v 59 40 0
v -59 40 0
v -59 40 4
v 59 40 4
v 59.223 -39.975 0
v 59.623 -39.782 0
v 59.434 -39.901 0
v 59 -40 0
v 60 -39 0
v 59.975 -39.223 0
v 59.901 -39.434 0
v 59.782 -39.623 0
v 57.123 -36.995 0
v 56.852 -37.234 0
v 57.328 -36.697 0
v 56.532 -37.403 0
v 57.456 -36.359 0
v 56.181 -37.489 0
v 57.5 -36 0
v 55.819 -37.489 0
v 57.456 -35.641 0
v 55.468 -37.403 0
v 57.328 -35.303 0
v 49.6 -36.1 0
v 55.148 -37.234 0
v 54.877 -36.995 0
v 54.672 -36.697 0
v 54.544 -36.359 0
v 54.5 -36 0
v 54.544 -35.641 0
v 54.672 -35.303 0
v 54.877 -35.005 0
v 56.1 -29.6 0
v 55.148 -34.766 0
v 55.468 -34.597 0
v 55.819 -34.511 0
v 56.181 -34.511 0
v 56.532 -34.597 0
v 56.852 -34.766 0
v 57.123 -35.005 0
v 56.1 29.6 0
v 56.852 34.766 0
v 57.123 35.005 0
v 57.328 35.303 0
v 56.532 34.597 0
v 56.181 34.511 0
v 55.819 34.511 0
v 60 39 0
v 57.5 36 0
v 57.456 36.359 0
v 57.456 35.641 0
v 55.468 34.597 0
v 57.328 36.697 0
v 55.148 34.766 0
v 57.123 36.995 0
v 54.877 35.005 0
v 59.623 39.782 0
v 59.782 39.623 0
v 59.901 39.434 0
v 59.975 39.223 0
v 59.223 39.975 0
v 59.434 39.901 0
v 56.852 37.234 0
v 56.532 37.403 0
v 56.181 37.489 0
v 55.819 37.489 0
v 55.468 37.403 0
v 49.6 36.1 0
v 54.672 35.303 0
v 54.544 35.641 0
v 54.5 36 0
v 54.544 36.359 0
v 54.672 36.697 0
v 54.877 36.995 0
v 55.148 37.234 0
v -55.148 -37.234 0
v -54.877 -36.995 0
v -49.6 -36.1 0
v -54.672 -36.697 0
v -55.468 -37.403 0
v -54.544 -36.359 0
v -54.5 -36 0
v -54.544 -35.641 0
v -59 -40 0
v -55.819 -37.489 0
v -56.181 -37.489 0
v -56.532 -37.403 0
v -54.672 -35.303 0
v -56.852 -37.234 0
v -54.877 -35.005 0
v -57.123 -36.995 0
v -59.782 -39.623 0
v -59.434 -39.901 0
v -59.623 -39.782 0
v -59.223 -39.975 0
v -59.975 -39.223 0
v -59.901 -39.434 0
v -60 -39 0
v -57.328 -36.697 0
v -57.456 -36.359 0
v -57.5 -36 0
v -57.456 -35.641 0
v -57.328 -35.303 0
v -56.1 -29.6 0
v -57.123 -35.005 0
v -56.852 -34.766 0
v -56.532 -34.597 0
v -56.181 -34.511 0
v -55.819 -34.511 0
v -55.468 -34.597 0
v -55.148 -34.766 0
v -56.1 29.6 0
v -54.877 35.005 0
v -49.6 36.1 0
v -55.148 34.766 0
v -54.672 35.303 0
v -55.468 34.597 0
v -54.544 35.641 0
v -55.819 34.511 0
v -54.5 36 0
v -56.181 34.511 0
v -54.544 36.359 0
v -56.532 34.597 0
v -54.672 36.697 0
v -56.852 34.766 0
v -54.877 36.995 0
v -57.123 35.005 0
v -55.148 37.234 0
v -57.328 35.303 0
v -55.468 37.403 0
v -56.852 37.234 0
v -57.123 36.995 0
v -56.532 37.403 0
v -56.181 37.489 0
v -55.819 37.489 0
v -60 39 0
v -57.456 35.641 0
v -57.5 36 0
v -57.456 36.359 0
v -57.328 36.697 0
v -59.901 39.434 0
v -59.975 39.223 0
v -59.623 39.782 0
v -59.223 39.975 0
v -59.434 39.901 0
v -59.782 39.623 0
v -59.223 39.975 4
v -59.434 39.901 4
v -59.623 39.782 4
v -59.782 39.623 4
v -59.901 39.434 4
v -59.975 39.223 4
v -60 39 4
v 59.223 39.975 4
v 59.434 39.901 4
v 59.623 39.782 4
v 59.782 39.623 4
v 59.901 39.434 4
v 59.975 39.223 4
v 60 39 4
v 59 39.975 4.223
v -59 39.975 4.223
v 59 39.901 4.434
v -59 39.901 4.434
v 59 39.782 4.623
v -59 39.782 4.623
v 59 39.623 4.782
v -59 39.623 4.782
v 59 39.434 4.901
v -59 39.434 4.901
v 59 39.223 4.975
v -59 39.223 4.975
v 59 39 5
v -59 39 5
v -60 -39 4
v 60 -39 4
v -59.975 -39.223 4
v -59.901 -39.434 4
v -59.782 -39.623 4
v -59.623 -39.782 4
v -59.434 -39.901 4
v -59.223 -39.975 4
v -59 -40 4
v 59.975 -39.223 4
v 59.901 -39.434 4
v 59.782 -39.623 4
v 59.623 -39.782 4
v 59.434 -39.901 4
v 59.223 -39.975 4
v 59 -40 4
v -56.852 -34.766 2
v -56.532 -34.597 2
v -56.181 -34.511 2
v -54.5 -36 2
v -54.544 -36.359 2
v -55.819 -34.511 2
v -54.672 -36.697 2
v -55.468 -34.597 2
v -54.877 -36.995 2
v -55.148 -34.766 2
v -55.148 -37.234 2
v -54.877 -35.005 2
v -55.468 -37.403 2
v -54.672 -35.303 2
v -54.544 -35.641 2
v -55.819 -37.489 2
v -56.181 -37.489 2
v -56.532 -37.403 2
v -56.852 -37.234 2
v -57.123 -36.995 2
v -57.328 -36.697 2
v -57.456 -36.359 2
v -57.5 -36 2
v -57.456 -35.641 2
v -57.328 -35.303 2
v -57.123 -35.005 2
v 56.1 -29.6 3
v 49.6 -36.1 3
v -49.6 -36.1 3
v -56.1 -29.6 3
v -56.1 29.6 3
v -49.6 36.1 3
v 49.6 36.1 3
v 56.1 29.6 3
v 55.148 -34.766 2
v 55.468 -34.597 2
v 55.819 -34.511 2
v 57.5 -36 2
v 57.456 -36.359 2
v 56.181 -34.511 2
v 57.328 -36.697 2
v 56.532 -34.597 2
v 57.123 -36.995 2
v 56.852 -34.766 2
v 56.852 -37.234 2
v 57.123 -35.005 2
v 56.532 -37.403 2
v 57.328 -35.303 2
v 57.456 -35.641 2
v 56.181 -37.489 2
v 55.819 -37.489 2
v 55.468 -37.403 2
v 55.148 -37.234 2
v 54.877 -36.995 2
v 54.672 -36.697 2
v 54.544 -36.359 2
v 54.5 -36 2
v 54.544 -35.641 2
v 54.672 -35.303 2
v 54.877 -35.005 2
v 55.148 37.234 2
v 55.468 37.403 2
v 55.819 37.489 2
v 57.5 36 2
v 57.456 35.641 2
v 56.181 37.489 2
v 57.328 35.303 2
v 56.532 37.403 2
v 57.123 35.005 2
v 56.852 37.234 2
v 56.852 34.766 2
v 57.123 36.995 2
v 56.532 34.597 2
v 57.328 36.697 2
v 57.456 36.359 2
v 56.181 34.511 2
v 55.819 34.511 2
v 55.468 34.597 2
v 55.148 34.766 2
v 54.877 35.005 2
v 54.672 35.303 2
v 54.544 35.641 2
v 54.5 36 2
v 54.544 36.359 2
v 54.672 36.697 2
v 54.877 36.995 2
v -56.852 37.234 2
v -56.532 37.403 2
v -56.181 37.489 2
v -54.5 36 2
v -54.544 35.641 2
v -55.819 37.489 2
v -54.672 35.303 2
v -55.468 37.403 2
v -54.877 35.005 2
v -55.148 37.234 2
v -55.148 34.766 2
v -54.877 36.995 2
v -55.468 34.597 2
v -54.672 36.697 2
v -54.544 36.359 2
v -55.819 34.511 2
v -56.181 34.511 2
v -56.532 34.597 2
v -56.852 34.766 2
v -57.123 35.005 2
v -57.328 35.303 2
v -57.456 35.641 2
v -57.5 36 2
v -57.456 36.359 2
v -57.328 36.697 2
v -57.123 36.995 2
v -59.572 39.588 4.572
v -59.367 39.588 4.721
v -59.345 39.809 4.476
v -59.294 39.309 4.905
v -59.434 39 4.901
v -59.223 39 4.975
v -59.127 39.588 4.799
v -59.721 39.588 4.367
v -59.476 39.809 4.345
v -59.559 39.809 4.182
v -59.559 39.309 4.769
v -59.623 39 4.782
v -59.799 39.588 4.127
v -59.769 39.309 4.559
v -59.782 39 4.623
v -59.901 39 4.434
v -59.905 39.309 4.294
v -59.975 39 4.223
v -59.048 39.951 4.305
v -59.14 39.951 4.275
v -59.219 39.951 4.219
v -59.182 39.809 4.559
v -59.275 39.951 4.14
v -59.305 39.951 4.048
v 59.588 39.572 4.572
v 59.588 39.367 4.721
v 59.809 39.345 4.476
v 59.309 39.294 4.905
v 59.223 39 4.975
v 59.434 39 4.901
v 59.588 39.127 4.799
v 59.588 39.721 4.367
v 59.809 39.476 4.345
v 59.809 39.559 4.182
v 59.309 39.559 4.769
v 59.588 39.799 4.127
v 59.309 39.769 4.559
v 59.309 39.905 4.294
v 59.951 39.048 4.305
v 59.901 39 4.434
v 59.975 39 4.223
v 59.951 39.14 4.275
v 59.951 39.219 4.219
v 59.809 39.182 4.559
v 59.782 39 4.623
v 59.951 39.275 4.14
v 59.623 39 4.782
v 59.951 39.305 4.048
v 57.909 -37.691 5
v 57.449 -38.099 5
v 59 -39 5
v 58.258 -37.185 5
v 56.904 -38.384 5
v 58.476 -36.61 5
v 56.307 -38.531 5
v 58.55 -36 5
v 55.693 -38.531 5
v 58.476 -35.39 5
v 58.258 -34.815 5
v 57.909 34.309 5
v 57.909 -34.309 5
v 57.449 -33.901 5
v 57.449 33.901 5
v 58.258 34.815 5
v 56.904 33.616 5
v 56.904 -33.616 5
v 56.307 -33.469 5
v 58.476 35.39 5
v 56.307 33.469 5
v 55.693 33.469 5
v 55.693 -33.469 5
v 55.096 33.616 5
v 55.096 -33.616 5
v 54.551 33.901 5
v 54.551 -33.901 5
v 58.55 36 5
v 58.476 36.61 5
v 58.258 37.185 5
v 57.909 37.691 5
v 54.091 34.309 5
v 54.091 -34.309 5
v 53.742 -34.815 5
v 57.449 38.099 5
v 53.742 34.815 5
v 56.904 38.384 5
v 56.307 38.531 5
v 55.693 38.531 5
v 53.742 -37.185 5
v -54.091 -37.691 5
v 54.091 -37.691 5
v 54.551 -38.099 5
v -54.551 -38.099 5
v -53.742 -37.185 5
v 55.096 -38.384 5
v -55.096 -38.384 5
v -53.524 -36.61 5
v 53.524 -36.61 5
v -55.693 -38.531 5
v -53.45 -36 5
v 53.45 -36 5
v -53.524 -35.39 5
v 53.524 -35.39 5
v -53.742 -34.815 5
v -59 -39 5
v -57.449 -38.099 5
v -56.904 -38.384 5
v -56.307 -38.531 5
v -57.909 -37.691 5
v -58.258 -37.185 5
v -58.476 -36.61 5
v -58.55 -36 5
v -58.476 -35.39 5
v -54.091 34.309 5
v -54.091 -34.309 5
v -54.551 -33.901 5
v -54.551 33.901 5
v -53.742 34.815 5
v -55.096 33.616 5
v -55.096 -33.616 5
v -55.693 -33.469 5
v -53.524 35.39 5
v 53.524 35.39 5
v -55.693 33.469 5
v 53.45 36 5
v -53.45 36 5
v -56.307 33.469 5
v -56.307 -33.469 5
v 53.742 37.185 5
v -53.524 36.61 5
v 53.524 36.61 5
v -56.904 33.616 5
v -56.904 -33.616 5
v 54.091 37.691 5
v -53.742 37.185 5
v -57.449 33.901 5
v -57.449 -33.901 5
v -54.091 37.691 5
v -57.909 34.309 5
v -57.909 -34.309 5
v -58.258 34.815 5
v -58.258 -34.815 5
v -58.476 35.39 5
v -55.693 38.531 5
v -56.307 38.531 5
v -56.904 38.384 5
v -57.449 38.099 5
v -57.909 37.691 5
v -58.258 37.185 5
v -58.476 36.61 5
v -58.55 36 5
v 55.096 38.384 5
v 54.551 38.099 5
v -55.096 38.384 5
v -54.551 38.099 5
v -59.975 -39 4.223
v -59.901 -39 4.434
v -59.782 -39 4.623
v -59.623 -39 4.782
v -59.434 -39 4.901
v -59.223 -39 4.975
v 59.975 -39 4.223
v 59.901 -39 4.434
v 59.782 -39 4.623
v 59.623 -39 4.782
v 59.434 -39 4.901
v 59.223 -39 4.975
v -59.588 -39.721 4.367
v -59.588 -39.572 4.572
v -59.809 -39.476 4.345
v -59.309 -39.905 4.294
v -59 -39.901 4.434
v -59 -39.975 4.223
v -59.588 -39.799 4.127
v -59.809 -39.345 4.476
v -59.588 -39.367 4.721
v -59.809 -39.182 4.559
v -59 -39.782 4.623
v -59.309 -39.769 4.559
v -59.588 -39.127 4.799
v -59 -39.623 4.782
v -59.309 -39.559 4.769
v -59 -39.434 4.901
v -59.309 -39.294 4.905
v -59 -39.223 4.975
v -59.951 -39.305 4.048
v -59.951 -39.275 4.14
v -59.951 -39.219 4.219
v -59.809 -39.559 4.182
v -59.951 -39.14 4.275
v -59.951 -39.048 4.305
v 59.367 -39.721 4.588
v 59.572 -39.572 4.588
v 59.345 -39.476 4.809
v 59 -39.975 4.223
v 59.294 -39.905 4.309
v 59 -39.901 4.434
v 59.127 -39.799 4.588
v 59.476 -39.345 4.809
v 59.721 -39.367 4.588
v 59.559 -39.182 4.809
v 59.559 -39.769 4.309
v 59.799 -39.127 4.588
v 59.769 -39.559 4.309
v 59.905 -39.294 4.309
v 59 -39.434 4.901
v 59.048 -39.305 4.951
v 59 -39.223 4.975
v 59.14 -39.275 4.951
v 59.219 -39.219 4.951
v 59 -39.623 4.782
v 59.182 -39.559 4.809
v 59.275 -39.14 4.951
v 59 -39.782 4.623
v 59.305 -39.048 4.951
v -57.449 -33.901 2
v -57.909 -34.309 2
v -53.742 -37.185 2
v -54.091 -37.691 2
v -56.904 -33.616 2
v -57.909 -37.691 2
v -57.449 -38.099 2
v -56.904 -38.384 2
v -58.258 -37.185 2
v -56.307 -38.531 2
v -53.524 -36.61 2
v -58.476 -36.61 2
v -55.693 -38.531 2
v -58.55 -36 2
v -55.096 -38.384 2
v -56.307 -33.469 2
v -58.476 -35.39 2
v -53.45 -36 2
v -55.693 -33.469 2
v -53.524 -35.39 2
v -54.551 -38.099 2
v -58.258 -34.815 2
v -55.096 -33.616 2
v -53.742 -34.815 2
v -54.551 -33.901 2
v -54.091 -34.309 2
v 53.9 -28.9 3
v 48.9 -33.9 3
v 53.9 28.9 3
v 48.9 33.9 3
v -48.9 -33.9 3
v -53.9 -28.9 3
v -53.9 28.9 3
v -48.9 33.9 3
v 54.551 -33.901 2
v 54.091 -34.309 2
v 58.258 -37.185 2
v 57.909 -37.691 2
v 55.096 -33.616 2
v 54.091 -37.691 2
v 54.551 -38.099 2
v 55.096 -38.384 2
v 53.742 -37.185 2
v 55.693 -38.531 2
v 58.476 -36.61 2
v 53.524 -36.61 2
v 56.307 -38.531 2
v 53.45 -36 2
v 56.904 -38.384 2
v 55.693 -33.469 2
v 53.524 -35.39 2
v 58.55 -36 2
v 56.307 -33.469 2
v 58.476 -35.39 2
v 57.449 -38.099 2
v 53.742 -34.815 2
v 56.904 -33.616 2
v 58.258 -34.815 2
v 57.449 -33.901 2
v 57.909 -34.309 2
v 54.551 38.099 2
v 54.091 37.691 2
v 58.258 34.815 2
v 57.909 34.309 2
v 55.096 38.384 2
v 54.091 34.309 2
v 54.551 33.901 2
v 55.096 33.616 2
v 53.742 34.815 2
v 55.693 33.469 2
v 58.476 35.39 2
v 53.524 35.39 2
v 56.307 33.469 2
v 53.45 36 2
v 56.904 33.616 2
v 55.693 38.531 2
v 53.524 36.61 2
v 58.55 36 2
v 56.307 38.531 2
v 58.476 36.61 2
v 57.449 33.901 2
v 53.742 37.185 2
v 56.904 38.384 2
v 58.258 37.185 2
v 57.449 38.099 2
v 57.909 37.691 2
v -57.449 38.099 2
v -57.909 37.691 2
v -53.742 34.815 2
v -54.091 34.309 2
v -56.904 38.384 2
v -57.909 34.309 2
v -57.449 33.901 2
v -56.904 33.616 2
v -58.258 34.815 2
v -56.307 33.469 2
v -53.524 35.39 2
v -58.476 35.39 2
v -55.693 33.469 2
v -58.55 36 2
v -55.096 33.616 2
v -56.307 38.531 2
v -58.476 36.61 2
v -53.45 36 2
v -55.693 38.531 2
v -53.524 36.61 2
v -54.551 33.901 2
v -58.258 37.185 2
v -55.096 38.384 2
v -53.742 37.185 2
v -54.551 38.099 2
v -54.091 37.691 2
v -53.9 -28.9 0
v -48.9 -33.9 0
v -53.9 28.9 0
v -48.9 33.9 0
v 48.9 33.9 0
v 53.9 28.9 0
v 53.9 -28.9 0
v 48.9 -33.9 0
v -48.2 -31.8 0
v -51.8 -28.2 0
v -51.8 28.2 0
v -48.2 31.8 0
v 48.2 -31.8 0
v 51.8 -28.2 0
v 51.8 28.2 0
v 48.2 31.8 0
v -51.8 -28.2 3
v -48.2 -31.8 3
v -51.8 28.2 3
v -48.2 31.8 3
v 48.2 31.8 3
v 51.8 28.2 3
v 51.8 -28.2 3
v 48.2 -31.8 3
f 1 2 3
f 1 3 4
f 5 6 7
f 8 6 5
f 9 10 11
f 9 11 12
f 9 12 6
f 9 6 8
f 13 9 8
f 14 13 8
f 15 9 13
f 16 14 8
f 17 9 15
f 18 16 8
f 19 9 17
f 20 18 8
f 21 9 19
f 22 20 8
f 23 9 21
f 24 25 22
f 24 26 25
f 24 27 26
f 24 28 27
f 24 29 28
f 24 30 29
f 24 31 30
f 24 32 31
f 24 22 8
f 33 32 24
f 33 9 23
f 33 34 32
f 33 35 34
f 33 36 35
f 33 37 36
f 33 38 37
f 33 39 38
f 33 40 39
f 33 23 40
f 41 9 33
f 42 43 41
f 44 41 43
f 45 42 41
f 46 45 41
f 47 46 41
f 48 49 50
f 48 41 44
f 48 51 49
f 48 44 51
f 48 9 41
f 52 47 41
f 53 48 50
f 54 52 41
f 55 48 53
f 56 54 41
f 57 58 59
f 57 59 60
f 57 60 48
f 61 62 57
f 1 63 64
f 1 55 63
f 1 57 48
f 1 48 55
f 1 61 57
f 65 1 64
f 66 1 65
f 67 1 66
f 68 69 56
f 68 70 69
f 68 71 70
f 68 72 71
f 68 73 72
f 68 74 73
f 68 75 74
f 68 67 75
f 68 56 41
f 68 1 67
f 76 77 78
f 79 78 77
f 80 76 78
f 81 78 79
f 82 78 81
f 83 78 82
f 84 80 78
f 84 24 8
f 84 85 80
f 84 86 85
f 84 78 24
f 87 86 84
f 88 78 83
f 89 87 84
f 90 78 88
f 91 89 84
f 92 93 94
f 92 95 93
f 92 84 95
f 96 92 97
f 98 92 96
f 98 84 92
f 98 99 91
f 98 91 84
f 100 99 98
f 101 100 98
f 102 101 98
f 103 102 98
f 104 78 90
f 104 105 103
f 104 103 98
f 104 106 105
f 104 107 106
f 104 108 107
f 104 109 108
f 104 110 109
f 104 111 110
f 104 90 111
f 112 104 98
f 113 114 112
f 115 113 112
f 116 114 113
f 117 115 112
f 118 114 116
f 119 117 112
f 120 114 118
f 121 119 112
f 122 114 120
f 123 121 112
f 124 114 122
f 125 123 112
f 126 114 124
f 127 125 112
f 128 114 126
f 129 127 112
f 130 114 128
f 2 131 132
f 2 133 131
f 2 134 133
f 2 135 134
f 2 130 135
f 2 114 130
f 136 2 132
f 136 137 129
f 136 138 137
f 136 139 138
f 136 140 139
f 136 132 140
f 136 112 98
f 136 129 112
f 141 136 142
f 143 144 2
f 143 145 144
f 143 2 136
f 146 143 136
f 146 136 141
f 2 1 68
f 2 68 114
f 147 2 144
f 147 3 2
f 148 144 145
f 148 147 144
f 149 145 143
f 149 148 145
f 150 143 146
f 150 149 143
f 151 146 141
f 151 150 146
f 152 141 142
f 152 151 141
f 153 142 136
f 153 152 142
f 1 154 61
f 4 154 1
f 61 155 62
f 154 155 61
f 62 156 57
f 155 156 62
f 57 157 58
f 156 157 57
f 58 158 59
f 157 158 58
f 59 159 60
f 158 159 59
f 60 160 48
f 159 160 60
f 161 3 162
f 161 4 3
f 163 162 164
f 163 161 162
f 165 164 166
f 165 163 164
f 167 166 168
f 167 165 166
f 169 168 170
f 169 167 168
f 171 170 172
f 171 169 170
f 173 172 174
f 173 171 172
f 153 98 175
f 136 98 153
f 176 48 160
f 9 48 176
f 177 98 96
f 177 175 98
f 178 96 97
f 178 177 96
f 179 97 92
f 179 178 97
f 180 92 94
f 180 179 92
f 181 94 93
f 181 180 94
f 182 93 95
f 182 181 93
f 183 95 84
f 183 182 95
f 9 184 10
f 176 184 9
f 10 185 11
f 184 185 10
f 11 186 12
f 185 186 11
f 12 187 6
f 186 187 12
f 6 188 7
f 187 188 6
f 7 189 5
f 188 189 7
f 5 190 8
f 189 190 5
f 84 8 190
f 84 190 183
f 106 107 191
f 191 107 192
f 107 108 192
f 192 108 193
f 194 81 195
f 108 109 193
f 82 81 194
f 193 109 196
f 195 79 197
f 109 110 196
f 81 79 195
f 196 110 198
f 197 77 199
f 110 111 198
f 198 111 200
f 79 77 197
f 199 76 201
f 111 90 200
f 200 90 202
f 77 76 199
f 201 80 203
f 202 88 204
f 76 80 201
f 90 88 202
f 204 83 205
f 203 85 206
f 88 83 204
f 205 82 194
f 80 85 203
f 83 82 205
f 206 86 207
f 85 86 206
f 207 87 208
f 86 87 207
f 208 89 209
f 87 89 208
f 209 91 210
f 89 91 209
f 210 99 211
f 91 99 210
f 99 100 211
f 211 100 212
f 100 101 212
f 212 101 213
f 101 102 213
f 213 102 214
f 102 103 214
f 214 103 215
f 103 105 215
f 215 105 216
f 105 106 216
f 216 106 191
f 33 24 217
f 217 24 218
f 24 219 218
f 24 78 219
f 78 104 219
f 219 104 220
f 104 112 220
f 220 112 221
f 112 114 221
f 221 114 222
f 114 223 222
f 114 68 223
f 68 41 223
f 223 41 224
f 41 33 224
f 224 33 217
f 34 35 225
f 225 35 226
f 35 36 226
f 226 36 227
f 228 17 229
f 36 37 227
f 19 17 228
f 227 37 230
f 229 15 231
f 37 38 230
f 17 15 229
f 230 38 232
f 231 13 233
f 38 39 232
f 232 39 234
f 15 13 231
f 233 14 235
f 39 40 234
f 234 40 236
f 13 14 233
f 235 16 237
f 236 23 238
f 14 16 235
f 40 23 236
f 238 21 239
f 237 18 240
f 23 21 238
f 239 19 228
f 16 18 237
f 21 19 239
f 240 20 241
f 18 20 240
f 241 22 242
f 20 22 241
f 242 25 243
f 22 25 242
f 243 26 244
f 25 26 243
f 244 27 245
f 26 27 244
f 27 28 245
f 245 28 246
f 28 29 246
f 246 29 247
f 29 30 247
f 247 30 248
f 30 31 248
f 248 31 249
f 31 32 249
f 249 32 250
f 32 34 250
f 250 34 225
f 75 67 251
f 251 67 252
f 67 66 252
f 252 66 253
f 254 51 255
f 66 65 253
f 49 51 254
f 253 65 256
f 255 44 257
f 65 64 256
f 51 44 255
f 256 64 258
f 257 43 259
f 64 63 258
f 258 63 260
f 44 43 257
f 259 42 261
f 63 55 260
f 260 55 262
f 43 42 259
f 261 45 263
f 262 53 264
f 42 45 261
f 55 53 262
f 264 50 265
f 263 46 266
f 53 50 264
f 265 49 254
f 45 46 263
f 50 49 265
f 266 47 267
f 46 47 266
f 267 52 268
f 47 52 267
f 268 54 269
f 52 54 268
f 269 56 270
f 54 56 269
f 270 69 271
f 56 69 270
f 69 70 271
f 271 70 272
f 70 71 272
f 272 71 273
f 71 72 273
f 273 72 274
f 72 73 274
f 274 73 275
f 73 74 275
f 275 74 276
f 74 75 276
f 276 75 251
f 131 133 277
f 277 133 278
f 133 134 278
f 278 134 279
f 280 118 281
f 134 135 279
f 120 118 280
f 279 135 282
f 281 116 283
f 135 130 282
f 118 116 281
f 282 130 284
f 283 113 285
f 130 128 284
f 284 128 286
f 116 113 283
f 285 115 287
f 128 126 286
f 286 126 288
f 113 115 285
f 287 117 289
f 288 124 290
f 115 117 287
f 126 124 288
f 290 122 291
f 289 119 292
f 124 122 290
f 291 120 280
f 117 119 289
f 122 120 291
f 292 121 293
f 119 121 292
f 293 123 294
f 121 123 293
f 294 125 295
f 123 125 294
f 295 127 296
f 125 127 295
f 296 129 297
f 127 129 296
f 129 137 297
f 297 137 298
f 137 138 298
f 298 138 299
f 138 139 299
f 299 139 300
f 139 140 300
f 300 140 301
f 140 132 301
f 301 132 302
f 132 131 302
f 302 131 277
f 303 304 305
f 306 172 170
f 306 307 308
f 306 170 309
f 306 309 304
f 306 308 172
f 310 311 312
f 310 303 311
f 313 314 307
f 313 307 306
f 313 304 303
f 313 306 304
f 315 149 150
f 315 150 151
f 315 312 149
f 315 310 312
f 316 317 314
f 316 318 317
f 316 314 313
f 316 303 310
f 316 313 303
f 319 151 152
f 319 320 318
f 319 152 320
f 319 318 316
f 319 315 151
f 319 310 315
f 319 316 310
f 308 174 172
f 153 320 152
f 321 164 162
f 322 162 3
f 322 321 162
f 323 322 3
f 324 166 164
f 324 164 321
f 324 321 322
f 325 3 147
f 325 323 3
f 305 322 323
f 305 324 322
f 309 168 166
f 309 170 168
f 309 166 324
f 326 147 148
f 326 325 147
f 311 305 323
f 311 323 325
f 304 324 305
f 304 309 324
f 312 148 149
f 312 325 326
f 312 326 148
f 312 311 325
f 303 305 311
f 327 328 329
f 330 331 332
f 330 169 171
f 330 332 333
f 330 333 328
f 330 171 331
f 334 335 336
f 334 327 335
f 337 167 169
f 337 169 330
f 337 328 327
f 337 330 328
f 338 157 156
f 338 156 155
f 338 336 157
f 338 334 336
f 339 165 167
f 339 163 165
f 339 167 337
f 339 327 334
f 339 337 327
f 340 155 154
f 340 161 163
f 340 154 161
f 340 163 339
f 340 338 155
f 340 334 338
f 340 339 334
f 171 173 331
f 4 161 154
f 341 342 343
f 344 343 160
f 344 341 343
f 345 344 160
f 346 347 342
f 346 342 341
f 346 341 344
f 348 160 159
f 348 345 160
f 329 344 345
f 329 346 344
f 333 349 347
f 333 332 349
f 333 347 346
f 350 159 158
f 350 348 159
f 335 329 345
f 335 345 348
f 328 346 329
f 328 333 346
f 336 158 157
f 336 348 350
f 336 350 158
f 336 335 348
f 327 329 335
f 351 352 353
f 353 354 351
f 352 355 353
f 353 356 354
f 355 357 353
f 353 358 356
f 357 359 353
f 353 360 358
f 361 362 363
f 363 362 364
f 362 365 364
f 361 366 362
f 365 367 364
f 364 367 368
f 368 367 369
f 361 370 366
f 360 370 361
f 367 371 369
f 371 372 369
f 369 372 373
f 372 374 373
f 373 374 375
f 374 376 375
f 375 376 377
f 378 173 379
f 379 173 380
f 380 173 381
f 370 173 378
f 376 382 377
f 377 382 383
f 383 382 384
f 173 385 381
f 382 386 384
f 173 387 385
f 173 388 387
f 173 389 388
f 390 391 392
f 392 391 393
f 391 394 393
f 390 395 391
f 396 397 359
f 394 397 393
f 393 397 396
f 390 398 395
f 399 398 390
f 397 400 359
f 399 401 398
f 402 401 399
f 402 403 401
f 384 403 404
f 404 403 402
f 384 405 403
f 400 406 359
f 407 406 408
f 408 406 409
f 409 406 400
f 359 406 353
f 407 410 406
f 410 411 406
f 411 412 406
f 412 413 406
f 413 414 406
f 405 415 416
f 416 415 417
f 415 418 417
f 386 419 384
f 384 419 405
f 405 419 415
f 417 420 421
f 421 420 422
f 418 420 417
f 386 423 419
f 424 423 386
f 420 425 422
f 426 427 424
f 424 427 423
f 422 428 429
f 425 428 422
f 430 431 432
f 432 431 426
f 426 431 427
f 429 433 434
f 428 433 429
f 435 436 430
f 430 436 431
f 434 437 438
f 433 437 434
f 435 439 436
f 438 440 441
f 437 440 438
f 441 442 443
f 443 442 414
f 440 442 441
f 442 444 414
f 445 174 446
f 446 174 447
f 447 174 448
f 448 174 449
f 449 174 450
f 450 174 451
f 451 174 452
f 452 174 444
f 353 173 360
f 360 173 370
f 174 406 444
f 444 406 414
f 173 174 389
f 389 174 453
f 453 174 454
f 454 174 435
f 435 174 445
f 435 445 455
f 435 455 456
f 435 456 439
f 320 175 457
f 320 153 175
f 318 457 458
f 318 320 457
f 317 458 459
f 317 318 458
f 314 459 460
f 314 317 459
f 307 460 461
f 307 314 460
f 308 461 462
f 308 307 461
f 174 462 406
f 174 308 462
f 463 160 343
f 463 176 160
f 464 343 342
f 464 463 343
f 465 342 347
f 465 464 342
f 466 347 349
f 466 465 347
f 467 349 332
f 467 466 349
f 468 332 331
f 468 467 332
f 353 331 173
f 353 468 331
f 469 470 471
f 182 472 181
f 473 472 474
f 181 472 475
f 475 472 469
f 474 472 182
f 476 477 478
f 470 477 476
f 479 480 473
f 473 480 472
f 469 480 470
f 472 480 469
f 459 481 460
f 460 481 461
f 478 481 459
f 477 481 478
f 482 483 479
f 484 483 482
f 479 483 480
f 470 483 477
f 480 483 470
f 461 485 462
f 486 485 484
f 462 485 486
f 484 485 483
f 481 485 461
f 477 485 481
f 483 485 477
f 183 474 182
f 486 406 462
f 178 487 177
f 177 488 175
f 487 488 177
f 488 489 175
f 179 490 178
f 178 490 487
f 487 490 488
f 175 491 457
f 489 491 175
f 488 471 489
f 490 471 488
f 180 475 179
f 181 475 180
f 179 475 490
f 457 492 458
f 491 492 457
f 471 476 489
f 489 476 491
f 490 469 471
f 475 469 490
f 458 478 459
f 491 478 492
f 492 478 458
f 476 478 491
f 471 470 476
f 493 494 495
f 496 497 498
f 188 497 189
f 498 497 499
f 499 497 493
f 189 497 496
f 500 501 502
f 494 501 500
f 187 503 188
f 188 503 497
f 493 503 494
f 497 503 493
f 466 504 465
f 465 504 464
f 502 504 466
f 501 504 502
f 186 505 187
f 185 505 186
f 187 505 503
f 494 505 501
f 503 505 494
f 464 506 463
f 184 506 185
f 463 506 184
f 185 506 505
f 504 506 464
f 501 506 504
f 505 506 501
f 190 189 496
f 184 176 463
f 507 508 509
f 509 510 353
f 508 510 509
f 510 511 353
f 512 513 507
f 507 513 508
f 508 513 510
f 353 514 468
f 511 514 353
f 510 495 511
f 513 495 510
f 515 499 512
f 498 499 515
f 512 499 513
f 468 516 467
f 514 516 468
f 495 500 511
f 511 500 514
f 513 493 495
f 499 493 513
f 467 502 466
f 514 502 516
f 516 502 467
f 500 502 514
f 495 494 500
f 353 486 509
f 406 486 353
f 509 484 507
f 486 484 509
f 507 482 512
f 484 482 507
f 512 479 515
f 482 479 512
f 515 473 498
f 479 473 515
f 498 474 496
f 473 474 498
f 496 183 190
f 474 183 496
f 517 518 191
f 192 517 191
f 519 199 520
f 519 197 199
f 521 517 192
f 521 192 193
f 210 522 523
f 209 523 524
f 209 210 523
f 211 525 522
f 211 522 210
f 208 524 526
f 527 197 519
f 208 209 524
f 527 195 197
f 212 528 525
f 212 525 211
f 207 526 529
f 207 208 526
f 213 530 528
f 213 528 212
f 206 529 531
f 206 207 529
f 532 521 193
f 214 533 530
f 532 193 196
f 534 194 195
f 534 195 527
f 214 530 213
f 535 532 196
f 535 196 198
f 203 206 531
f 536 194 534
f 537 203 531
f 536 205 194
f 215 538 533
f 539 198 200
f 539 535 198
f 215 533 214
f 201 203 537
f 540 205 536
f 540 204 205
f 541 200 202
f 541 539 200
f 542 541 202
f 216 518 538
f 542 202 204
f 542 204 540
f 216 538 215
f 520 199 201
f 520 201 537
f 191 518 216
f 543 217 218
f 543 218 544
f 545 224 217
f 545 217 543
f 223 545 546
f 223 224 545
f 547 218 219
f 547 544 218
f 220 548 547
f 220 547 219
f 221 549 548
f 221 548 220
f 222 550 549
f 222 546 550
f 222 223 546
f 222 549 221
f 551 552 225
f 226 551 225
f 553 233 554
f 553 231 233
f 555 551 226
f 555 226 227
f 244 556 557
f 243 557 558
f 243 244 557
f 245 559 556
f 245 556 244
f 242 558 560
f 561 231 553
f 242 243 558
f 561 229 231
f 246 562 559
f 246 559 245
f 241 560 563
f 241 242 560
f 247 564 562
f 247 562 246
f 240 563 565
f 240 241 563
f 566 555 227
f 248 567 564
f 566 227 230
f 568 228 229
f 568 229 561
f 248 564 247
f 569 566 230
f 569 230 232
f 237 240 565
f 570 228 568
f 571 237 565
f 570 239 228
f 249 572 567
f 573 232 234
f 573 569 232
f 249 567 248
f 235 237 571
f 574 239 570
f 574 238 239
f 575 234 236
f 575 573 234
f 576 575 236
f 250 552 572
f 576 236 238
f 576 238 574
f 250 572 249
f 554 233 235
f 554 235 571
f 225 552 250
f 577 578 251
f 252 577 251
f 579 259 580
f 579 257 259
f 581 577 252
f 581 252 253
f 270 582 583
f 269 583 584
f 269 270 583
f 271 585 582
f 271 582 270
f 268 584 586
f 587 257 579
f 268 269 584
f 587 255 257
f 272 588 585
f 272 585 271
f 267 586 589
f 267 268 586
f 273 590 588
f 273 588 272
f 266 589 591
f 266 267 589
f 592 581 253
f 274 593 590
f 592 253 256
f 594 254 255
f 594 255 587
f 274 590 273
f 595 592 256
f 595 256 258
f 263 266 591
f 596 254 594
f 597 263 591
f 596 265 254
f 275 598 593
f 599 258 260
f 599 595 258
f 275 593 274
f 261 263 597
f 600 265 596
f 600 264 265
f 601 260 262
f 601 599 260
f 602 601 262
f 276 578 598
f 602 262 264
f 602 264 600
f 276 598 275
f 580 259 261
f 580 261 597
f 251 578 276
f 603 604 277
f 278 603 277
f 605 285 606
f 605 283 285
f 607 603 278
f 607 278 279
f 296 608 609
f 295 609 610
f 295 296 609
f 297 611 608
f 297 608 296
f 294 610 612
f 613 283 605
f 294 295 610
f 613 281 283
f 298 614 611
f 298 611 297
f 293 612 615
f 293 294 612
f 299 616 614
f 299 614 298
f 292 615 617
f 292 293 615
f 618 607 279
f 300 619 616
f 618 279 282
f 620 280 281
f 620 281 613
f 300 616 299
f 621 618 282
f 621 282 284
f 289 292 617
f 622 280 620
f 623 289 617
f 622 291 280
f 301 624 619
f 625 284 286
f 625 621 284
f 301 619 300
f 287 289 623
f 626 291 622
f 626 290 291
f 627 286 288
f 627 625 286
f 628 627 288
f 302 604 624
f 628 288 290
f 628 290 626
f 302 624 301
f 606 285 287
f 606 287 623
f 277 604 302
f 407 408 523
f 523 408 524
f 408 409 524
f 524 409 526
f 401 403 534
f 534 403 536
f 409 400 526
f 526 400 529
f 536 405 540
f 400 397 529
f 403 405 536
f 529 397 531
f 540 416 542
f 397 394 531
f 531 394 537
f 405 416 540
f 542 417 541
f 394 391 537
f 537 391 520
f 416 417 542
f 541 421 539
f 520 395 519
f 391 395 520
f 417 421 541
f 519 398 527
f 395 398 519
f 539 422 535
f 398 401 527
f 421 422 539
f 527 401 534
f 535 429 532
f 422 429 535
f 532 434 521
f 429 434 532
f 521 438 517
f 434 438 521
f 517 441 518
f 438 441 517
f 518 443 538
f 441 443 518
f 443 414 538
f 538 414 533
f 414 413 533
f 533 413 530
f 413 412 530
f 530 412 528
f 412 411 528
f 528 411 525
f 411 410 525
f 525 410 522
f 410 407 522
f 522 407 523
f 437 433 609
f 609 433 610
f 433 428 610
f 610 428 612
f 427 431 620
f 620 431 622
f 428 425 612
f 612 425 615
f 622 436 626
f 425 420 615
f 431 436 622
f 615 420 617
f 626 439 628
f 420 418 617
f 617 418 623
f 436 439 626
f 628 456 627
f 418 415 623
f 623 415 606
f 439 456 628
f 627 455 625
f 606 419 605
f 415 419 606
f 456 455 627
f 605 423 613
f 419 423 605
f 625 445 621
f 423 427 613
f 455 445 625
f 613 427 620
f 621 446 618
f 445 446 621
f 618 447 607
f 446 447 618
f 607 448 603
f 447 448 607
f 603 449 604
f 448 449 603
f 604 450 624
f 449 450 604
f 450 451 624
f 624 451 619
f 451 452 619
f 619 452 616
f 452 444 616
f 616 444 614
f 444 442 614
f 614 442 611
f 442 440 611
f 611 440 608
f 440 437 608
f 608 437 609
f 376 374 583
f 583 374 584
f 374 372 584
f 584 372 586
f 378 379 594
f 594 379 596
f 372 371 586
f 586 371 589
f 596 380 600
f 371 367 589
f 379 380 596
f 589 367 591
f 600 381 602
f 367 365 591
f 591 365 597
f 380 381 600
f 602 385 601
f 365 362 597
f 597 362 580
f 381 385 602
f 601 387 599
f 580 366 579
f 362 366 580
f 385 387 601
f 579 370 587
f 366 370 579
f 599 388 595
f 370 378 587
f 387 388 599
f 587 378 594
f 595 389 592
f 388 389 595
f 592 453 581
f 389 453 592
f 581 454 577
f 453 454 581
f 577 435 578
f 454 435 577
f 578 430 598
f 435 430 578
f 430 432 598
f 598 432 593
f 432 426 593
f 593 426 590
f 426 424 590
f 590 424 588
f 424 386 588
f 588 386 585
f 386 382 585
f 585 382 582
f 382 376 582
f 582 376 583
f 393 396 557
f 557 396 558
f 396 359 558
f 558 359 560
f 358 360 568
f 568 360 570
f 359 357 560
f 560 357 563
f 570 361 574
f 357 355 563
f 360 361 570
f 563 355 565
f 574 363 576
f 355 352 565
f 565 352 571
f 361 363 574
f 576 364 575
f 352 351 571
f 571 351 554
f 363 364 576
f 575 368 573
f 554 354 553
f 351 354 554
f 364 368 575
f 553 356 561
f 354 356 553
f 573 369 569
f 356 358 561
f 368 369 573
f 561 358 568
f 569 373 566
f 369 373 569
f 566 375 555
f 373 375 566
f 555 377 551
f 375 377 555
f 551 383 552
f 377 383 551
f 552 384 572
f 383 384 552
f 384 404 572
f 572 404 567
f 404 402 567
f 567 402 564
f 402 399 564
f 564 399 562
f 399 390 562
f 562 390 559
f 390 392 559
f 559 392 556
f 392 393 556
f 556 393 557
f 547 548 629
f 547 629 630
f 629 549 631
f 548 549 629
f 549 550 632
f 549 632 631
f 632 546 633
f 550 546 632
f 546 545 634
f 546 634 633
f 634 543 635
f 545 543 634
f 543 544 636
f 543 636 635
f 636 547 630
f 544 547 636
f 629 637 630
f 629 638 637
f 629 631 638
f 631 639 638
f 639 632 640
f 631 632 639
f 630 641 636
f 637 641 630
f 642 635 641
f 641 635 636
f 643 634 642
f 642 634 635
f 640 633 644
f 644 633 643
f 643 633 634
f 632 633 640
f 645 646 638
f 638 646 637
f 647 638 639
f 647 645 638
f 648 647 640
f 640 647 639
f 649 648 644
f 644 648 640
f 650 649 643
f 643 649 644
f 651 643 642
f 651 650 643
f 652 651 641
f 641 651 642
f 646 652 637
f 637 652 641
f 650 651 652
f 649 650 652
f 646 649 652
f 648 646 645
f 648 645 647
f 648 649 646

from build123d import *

# Parameters (mm, degrees)
SKETCH_W        = 120
SKETCH_H        = 80
PAD_DEPTH       = 5
SKETCH001_R     = 1.5
POCKET_DEPTH    = 3
SKETCH002_R     = 2.85
POCKET001_DEPTH = 3
FILLET_R        = 1
PAD001_DEPTH    = 3


with BuildPart() as part:
    # Sketch → Pad (new body)
    with BuildSketch(Plane.XY):
        Rectangle(SKETCH_W, SKETCH_H)
    extrude(amount=PAD_DEPTH)

    # Sketch001 (on Face5 of Pad) → Pocket (cut)
    with BuildSketch(Plane(origin=(0, 0, 0), x_dir=(1, 0, 0), z_dir=(0, 0, -1))):
        with Locations((56, 36)):
            Circle(SKETCH001_R)
        with Locations((56, -36)):
            Circle(SKETCH001_R)
        with Locations((-56, 36)):
            Circle(SKETCH001_R)
        with Locations((-56, -36)):
            Circle(SKETCH001_R)
        Polygon((56.1, 29.6), (49.6, 36.1), (-49.6, 36.1), (-56.1, 29.6), (-56.1, -29.6), (-49.6, -36.1), (49.6, -36.1), (56.1, -29.6), align=None)
    extrude(amount=-POCKET_DEPTH, mode=Mode.SUBTRACT)

    # Sketch002 (on Face5 of Pocket) → Pocket001 (cut)
    with BuildSketch(Plane.XY.offset(5)):
        with Locations((56, 36)):
            Circle(SKETCH002_R)
        with Locations((56, -36)):
            Circle(SKETCH002_R)
        with Locations((-56, 36)):
            Circle(SKETCH002_R)
        with Locations((-56, -36)):
            Circle(SKETCH002_R)
    extrude(amount=-POCKET001_DEPTH, mode=Mode.SUBTRACT)

    # Fillet
    fillet_edges = [part.edges().sort_by_distance(p)[0] for p in [
        (60, -40, 2.5),
        (0, -40, 5),
        (-60, -40, 2.5),
        (-60, 0, 5),
        (0, 40, 5),
        (60, 0, 5),
        (60, 40, 2.5),
        (-60, 40, 2.5),
    ]]
    fillet(fillet_edges, radius=FILLET_R)

    # CopySketch003 → Pad001 (join)
    with BuildSketch(Plane(origin=(0, 0, 3), x_dir=(1, 0, 0), z_dir=(0, 0, -1))):
        Polygon((-48.9, 33.9), (48.9, 33.9), (53.9, 28.9), (53.9, -28.9), (48.9, -33.9), (-48.9, -33.9), (-53.9, -28.9), (-53.9, 28.9), align=None)
        Polygon((-48.2, 31.8), (48.2, 31.8), (51.8, 28.2), (51.8, -28.2), (48.2, -31.8), (-48.2, -31.8), (-51.8, -28.2), (-51.8, 28.2), align=None, mode=Mode.SUBTRACT)
    extrude(amount=PAD001_DEPTH)


solid = part.part
